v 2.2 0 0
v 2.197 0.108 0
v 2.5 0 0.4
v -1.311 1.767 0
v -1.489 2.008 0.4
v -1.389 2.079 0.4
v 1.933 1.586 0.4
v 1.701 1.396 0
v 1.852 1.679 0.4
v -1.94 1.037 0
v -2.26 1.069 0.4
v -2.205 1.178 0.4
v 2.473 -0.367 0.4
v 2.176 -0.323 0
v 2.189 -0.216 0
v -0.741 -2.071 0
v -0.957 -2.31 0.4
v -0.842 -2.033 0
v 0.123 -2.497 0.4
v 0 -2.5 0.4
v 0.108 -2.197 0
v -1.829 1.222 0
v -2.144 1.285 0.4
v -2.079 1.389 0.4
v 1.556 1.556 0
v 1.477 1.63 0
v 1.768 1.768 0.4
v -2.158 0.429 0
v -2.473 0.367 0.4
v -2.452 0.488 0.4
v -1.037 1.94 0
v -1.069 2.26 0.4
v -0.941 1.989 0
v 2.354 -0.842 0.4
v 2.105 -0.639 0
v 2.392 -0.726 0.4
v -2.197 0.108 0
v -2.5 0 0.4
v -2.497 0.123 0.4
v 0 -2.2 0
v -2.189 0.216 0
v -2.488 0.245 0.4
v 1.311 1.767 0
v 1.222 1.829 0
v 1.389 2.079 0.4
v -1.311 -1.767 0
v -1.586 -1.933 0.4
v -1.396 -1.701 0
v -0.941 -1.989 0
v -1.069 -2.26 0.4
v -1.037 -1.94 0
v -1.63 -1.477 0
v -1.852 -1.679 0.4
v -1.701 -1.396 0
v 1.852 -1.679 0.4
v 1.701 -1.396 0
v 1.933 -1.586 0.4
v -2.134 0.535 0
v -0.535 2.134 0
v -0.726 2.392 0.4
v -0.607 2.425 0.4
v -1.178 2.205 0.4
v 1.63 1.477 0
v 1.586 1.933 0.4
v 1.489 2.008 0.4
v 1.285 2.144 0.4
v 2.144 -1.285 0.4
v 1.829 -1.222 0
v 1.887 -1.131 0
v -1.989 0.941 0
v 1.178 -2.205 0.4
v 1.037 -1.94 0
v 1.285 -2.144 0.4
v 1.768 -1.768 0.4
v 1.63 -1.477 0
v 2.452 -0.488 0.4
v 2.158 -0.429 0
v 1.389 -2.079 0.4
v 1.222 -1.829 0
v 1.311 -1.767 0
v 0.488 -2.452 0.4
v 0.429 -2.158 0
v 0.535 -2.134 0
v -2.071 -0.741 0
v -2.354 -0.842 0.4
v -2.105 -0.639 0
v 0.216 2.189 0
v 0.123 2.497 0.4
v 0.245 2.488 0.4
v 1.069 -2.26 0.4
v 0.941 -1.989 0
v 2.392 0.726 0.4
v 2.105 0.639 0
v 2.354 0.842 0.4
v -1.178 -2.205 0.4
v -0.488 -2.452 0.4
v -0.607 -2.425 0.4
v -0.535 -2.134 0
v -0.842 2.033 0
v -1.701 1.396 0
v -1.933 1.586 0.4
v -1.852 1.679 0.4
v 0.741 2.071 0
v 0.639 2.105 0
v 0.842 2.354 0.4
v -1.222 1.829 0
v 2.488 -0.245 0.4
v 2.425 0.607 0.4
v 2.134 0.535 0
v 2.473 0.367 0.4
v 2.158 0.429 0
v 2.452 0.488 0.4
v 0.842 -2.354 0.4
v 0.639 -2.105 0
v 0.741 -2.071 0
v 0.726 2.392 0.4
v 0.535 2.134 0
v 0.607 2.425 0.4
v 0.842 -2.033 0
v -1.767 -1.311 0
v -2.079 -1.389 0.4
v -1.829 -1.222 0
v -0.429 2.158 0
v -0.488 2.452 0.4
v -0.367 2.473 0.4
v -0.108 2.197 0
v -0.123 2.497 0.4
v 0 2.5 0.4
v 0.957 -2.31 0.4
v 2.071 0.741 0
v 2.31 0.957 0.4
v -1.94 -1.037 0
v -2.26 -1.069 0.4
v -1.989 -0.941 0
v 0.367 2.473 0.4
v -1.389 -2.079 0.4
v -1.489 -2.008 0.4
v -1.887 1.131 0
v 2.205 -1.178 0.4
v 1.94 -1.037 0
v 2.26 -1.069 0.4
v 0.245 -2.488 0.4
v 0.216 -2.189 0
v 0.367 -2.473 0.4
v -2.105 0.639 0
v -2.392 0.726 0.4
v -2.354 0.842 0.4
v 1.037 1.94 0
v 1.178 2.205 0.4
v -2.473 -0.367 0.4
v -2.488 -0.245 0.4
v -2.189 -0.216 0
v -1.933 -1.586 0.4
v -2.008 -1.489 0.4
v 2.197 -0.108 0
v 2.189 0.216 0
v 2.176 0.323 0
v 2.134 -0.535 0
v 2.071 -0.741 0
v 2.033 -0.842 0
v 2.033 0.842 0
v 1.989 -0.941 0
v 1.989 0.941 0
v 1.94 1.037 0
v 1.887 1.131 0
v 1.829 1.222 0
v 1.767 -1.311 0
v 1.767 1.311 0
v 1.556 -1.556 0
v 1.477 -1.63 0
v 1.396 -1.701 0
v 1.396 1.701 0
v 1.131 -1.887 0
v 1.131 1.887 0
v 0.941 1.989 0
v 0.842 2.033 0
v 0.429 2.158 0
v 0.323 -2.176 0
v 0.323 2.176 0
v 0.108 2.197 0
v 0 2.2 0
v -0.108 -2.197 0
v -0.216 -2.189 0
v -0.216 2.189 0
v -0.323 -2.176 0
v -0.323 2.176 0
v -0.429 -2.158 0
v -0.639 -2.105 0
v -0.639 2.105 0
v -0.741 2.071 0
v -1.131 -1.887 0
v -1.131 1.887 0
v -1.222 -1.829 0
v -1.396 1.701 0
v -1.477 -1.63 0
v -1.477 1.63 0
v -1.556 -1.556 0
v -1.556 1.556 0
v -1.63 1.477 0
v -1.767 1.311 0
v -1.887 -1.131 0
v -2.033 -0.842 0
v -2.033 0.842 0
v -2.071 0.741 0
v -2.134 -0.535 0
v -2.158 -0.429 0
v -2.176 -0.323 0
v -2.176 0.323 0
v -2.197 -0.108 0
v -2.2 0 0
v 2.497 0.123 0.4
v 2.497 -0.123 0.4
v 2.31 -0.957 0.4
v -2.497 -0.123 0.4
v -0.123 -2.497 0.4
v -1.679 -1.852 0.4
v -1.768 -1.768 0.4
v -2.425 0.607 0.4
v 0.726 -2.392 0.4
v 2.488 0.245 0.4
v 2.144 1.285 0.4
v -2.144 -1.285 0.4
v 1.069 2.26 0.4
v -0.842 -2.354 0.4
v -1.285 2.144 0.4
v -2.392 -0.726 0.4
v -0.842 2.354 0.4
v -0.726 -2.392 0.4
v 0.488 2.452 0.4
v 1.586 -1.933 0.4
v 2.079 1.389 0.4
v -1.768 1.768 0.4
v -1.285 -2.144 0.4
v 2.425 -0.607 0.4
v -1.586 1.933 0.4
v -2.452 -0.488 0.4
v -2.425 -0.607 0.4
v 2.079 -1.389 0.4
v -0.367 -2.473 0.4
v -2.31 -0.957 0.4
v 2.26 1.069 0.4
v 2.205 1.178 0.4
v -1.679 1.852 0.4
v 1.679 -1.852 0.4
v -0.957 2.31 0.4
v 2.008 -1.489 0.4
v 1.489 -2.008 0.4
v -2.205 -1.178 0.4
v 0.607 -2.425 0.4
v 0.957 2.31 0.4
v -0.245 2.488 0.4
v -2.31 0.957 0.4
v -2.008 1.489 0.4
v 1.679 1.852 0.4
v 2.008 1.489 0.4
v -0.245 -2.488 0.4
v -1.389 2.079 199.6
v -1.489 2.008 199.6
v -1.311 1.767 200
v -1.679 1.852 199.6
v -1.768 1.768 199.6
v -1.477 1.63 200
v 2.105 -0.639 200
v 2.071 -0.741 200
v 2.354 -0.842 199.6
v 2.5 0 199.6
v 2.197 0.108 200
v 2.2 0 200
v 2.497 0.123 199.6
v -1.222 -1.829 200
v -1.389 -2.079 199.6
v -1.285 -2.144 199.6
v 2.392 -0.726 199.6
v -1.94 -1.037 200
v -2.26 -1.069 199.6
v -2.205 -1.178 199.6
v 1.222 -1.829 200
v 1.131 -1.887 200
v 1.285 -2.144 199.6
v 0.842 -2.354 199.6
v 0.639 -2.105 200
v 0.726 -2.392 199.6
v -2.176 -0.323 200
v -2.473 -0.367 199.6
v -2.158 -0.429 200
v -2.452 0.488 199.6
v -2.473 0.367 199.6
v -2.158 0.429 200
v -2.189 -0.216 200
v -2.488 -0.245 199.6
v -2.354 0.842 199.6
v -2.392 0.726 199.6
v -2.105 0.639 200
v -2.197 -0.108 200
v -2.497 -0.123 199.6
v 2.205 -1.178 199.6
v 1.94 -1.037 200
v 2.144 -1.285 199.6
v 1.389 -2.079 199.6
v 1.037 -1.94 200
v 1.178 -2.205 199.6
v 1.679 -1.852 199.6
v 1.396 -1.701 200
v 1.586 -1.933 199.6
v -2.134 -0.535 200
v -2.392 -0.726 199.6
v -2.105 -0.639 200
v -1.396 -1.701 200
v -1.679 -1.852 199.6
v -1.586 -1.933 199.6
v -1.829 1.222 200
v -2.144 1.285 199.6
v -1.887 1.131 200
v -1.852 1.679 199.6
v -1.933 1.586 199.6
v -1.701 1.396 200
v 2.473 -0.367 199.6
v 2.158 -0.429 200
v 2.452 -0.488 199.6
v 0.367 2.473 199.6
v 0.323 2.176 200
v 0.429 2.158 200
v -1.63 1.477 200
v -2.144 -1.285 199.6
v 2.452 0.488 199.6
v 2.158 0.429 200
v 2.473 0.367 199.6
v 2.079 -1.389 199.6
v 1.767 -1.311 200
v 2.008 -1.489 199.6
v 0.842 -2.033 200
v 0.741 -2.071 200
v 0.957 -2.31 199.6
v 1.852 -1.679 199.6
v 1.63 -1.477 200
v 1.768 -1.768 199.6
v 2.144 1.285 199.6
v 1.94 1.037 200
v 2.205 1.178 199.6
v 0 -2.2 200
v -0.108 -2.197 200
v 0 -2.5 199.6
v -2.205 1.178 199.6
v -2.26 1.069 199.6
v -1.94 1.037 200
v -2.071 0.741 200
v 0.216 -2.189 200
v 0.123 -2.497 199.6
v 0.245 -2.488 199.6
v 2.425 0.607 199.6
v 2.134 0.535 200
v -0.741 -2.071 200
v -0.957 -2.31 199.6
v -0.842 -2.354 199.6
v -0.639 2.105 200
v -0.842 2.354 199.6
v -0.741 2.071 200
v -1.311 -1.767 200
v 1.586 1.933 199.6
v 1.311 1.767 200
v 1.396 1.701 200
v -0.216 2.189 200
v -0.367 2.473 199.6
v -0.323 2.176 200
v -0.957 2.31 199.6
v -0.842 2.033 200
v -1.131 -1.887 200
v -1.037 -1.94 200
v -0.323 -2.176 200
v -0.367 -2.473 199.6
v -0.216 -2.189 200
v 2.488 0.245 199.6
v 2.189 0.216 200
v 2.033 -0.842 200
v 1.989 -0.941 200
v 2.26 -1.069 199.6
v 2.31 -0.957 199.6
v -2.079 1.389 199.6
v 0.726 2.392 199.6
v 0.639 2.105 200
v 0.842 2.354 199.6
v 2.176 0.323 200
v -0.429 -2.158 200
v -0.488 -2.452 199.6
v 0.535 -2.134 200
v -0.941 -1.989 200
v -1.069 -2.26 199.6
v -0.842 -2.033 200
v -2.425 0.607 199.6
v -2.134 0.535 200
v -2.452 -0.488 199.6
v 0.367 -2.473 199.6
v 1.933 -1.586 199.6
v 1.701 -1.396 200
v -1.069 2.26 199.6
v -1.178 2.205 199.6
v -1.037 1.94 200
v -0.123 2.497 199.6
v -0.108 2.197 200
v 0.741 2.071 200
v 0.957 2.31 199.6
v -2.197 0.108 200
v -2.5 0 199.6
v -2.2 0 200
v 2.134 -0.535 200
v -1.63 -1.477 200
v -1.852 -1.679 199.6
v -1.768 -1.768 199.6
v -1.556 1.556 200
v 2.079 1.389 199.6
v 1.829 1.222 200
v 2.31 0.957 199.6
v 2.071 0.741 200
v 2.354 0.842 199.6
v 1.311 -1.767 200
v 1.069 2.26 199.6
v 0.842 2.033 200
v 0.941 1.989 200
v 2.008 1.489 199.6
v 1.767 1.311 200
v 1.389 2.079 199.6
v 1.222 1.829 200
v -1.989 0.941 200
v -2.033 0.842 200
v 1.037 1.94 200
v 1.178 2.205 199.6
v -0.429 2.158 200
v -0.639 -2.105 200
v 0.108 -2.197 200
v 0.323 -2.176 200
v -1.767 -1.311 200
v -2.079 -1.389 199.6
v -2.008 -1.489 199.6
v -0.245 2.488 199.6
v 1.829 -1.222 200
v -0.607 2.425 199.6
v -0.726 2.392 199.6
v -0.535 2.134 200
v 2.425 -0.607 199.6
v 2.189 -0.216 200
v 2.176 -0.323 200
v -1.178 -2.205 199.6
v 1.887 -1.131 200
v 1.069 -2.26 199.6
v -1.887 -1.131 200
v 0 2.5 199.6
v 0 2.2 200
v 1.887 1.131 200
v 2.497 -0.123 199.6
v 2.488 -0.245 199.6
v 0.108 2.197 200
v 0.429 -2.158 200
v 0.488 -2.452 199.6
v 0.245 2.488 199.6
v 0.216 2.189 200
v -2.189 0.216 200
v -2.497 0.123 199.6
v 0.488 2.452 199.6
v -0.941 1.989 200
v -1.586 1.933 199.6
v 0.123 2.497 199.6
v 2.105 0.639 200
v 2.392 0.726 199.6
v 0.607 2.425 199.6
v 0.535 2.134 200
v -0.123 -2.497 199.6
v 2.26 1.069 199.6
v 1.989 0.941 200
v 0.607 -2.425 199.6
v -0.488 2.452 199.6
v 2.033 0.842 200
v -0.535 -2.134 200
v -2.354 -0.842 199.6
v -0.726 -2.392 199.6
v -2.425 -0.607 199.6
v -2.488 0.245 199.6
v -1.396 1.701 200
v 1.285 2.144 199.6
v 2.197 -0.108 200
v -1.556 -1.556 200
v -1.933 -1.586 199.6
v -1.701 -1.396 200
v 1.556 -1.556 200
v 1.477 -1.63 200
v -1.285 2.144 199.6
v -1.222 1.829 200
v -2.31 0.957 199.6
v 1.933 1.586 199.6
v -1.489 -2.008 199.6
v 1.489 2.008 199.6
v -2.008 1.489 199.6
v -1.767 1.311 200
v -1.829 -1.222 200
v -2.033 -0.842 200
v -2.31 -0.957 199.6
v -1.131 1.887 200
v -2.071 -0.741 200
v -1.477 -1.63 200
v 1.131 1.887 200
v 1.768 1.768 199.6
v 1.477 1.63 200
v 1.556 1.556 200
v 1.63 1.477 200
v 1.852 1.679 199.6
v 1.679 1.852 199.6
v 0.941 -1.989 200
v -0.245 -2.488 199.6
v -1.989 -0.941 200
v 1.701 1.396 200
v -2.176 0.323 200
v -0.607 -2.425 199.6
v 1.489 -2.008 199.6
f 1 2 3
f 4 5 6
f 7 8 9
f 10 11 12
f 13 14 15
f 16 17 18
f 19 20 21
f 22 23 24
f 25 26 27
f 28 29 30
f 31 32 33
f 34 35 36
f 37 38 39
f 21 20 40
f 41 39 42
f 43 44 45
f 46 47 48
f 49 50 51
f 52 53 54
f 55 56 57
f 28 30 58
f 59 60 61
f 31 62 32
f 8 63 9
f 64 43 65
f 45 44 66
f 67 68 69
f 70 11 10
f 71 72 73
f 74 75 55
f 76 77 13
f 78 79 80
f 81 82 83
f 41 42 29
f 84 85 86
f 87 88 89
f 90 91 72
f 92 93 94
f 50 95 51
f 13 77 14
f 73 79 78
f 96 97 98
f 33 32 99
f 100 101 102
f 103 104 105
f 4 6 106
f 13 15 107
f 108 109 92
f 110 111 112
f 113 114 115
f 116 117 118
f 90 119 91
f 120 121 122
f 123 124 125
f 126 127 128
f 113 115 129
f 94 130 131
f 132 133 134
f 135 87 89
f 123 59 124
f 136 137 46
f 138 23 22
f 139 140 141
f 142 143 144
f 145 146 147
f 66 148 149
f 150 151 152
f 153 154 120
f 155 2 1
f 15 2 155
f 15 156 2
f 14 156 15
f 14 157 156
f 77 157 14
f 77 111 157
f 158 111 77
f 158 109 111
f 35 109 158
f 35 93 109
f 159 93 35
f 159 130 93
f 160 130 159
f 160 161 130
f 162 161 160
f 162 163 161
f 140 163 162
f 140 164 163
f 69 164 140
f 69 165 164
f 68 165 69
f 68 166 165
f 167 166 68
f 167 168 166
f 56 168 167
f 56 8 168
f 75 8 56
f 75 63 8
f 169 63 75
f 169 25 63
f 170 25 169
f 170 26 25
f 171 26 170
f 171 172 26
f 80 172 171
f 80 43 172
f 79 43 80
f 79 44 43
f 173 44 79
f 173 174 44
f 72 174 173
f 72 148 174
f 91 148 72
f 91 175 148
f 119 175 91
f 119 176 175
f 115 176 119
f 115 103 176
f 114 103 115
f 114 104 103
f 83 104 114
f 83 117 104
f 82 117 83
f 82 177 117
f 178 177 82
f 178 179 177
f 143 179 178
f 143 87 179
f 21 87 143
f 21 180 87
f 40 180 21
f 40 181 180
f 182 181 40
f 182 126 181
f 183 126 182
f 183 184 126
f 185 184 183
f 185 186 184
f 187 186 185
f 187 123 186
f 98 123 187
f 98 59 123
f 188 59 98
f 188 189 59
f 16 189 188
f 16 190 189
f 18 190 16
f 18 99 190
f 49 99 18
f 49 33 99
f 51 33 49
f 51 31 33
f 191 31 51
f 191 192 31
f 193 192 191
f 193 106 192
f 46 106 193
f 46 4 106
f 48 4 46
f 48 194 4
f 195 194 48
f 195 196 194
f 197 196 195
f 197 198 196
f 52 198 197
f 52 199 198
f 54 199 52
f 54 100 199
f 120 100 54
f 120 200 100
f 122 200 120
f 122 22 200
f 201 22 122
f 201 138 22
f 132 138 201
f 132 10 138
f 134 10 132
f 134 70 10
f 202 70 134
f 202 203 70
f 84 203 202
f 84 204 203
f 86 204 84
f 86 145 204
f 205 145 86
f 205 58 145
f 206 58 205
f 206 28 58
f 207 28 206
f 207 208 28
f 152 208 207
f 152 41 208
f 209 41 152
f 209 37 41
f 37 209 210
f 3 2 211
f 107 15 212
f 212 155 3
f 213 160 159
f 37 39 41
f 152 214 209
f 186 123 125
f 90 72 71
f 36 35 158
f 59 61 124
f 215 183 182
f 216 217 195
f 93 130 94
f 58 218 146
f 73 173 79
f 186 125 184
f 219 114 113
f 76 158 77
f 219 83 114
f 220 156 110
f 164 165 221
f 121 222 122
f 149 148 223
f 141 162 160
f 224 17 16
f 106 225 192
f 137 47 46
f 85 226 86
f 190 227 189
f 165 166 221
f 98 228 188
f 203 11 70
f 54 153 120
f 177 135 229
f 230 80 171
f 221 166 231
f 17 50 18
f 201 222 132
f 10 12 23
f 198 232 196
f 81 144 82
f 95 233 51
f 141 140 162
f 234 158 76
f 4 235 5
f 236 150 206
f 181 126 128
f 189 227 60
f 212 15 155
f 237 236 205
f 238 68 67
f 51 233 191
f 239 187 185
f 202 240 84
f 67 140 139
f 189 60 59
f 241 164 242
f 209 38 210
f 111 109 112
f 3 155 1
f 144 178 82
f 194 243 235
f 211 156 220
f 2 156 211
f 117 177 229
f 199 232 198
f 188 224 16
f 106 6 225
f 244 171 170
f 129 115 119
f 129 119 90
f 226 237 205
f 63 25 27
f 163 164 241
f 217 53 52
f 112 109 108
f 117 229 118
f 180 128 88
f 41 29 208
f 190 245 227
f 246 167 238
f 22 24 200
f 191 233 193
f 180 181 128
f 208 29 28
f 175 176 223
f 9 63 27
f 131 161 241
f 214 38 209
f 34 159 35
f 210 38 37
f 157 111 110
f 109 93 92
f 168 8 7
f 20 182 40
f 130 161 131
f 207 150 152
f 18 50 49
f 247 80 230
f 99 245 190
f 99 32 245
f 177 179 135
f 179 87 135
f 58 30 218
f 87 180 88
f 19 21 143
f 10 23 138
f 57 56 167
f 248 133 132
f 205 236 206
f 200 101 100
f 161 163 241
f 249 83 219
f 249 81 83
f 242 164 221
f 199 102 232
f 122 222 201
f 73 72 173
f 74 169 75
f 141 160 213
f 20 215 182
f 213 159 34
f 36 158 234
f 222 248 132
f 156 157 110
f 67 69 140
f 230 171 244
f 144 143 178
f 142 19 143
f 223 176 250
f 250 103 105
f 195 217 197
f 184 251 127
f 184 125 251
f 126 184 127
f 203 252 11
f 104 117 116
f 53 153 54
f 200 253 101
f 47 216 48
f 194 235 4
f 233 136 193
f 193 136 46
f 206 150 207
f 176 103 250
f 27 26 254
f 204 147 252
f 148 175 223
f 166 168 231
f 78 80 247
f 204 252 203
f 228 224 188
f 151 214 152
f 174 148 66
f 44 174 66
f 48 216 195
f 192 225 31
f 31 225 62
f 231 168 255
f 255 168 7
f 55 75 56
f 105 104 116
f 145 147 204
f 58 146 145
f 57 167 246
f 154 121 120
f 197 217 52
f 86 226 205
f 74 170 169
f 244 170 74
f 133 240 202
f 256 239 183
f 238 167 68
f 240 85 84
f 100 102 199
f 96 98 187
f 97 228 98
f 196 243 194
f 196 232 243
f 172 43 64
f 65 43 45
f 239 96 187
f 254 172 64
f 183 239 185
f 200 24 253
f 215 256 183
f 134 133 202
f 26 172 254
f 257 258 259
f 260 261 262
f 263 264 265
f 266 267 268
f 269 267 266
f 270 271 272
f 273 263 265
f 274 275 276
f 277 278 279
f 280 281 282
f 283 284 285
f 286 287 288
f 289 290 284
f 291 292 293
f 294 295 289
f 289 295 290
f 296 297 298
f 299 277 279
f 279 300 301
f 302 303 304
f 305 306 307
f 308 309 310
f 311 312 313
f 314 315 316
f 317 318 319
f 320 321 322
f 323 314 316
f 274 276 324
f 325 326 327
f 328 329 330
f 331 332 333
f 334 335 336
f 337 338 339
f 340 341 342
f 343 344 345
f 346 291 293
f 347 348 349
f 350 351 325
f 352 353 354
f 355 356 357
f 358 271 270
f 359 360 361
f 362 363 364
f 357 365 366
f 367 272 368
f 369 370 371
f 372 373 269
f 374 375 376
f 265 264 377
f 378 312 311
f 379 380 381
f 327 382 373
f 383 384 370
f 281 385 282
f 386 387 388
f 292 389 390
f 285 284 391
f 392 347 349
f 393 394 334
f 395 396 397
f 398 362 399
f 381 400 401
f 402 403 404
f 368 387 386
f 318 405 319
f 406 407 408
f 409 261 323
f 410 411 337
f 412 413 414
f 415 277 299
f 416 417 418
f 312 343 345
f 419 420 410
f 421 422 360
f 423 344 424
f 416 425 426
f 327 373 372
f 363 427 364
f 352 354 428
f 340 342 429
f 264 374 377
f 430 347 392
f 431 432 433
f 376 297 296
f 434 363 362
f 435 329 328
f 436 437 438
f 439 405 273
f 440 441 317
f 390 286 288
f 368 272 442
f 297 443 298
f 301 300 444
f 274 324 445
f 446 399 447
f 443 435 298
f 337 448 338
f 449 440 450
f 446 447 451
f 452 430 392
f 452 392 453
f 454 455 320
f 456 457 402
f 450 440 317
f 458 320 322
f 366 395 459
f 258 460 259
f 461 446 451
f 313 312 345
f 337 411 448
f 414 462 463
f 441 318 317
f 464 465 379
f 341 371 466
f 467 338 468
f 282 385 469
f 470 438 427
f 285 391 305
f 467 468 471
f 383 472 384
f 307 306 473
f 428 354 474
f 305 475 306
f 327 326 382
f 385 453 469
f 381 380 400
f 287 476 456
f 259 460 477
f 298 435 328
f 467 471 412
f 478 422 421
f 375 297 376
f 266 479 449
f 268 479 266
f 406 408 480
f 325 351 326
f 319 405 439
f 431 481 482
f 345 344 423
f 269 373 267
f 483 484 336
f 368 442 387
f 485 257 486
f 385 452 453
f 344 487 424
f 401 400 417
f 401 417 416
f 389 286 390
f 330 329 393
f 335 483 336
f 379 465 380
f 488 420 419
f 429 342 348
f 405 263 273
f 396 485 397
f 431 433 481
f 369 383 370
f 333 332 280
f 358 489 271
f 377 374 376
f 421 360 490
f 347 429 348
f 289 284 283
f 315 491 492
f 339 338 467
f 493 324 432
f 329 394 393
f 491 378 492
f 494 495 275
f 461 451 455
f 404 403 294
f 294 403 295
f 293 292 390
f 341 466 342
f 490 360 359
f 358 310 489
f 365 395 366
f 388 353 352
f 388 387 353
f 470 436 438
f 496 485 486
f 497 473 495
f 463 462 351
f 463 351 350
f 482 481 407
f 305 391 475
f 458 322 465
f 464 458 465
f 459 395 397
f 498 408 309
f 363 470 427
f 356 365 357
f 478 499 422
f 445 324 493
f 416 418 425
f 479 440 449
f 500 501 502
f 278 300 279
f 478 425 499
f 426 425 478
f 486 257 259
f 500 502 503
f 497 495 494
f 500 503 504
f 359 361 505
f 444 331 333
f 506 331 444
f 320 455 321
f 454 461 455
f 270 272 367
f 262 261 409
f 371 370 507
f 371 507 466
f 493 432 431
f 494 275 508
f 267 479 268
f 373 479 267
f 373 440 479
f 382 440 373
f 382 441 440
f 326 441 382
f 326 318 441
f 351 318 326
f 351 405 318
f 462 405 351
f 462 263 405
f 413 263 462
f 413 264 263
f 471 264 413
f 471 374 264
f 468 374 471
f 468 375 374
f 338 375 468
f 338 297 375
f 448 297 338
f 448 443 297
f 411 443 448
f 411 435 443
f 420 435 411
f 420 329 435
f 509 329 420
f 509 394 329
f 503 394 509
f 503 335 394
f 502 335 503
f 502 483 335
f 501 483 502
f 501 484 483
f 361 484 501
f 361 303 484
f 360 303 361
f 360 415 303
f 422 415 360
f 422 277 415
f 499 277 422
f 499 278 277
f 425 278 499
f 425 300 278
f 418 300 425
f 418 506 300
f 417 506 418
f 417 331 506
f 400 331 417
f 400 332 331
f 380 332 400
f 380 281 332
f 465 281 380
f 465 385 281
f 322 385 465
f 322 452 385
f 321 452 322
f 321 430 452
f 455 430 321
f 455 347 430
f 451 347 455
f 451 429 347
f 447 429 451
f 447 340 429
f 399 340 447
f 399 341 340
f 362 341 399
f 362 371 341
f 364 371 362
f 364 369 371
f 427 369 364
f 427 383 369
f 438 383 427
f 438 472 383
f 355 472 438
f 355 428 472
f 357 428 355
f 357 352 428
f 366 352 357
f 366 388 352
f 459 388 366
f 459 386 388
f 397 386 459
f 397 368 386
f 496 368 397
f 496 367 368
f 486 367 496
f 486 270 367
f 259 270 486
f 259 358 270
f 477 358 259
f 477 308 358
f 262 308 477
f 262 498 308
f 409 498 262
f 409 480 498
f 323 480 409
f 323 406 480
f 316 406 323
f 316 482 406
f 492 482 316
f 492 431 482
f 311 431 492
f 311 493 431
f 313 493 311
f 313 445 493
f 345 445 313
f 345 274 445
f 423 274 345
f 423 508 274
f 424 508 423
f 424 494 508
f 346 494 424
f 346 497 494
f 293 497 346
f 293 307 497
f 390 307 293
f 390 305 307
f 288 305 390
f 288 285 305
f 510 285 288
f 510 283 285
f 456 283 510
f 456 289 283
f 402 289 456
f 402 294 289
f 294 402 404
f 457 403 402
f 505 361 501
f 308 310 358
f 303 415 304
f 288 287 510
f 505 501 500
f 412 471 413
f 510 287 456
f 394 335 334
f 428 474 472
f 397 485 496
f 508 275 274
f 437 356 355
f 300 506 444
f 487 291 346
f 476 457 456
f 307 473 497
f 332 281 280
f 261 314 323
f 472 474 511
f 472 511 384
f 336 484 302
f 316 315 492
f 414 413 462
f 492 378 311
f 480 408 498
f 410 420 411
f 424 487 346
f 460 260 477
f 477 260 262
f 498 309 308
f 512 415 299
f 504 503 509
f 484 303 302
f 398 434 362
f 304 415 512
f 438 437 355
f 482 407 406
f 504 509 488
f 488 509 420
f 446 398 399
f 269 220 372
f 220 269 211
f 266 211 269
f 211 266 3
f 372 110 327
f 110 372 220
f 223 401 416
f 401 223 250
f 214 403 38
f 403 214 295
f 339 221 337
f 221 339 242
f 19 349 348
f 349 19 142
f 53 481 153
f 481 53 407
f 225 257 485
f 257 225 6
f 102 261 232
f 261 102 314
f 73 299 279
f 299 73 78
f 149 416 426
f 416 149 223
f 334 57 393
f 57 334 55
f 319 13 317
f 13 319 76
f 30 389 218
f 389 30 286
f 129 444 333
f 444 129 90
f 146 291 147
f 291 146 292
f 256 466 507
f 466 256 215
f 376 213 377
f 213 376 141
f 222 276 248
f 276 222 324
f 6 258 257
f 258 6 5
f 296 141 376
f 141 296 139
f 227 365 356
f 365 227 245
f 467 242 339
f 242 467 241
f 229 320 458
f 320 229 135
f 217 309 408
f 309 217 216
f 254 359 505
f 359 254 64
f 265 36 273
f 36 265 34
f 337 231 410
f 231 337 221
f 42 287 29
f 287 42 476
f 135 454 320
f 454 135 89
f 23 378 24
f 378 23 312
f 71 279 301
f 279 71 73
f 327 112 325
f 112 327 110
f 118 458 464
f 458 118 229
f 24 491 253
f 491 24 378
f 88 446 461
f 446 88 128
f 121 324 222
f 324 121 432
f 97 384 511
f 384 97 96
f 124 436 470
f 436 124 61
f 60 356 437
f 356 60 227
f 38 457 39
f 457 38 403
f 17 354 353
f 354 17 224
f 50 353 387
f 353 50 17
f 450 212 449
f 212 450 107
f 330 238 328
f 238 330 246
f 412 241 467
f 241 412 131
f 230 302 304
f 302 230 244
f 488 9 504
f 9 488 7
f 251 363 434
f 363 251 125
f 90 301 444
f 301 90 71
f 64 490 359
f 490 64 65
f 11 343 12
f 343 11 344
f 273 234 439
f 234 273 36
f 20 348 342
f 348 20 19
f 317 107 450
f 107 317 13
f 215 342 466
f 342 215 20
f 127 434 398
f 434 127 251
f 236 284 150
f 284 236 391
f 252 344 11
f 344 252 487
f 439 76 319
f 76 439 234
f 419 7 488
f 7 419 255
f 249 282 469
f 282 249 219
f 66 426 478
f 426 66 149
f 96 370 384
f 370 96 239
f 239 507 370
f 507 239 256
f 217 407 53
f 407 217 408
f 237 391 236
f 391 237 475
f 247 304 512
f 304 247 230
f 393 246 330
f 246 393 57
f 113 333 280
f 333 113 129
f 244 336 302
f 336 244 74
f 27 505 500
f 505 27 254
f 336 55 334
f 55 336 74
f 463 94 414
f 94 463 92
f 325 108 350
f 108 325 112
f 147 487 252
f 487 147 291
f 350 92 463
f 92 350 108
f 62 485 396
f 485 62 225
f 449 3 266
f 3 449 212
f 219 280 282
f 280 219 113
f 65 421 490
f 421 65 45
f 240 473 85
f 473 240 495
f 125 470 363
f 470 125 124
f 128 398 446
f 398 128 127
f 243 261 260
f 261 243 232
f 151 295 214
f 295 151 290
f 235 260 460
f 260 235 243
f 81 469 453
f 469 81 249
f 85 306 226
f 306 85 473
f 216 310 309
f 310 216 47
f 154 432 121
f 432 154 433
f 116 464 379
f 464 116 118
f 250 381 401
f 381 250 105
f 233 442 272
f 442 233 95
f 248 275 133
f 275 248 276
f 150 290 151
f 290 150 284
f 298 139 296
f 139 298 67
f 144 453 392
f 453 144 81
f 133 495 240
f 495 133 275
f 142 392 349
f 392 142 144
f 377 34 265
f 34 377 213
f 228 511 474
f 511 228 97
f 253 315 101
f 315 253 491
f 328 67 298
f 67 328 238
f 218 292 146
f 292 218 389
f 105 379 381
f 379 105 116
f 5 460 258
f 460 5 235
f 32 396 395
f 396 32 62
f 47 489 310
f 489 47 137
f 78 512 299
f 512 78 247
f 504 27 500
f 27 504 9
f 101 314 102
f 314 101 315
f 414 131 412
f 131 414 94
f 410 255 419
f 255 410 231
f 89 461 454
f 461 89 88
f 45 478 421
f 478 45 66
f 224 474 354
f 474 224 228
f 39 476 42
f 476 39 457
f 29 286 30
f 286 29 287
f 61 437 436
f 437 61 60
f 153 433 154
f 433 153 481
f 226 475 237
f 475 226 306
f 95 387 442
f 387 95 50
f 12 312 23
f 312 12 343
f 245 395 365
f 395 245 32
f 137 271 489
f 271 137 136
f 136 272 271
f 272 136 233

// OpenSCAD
// 100 mm long, 5 mm diameter test piece for your sockets
// Set wall_thick = 0 for a solid rod, or >0 for a hollow tube.

// --- Params ---
len_mm     = 200;   // length (10 cm)
outer_d    = 5.0;   // outer diameter to match your CF tube
wall_thick = 0;     // 0 => solid; e.g. 1.0 => 1 mm wall (ID = outer_d - 2*wall_thick)
chamfer_h  = 0.4;   // small lead-in at each end

$fn = 128;

// --- Derived ---
inner_d = (wall_thick > 0) ? max(0, outer_d - 2*wall_thick) : 0;

// --- Main ---
module tube_or_rod(od, id, L, chamfer=0) {
  difference() {
    // body
    union() {
      // straight section
      translate([0,0,chamfer]) cylinder(d=od, h=L - 2*chamfer, center=false);
      // chamfers
      if (chamfer > 0) {
        // bottom chamfer
        cylinder(h=chamfer, d1=od-0.6, d2=od, center=false);
        // top chamfer
        translate([0,0,L - chamfer]) cylinder(h=chamfer, d1=od, d2=od-0.6, center=false);
      }
    }
    // hollow if requested
    if (id > 0) {
      translate([0,0,-0.1]) cylinder(d=id, h=L+0.2, center=false);
    }
  }
}

tube_or_rod(outer_d, inner_d, len_mm, chamfer_h);
